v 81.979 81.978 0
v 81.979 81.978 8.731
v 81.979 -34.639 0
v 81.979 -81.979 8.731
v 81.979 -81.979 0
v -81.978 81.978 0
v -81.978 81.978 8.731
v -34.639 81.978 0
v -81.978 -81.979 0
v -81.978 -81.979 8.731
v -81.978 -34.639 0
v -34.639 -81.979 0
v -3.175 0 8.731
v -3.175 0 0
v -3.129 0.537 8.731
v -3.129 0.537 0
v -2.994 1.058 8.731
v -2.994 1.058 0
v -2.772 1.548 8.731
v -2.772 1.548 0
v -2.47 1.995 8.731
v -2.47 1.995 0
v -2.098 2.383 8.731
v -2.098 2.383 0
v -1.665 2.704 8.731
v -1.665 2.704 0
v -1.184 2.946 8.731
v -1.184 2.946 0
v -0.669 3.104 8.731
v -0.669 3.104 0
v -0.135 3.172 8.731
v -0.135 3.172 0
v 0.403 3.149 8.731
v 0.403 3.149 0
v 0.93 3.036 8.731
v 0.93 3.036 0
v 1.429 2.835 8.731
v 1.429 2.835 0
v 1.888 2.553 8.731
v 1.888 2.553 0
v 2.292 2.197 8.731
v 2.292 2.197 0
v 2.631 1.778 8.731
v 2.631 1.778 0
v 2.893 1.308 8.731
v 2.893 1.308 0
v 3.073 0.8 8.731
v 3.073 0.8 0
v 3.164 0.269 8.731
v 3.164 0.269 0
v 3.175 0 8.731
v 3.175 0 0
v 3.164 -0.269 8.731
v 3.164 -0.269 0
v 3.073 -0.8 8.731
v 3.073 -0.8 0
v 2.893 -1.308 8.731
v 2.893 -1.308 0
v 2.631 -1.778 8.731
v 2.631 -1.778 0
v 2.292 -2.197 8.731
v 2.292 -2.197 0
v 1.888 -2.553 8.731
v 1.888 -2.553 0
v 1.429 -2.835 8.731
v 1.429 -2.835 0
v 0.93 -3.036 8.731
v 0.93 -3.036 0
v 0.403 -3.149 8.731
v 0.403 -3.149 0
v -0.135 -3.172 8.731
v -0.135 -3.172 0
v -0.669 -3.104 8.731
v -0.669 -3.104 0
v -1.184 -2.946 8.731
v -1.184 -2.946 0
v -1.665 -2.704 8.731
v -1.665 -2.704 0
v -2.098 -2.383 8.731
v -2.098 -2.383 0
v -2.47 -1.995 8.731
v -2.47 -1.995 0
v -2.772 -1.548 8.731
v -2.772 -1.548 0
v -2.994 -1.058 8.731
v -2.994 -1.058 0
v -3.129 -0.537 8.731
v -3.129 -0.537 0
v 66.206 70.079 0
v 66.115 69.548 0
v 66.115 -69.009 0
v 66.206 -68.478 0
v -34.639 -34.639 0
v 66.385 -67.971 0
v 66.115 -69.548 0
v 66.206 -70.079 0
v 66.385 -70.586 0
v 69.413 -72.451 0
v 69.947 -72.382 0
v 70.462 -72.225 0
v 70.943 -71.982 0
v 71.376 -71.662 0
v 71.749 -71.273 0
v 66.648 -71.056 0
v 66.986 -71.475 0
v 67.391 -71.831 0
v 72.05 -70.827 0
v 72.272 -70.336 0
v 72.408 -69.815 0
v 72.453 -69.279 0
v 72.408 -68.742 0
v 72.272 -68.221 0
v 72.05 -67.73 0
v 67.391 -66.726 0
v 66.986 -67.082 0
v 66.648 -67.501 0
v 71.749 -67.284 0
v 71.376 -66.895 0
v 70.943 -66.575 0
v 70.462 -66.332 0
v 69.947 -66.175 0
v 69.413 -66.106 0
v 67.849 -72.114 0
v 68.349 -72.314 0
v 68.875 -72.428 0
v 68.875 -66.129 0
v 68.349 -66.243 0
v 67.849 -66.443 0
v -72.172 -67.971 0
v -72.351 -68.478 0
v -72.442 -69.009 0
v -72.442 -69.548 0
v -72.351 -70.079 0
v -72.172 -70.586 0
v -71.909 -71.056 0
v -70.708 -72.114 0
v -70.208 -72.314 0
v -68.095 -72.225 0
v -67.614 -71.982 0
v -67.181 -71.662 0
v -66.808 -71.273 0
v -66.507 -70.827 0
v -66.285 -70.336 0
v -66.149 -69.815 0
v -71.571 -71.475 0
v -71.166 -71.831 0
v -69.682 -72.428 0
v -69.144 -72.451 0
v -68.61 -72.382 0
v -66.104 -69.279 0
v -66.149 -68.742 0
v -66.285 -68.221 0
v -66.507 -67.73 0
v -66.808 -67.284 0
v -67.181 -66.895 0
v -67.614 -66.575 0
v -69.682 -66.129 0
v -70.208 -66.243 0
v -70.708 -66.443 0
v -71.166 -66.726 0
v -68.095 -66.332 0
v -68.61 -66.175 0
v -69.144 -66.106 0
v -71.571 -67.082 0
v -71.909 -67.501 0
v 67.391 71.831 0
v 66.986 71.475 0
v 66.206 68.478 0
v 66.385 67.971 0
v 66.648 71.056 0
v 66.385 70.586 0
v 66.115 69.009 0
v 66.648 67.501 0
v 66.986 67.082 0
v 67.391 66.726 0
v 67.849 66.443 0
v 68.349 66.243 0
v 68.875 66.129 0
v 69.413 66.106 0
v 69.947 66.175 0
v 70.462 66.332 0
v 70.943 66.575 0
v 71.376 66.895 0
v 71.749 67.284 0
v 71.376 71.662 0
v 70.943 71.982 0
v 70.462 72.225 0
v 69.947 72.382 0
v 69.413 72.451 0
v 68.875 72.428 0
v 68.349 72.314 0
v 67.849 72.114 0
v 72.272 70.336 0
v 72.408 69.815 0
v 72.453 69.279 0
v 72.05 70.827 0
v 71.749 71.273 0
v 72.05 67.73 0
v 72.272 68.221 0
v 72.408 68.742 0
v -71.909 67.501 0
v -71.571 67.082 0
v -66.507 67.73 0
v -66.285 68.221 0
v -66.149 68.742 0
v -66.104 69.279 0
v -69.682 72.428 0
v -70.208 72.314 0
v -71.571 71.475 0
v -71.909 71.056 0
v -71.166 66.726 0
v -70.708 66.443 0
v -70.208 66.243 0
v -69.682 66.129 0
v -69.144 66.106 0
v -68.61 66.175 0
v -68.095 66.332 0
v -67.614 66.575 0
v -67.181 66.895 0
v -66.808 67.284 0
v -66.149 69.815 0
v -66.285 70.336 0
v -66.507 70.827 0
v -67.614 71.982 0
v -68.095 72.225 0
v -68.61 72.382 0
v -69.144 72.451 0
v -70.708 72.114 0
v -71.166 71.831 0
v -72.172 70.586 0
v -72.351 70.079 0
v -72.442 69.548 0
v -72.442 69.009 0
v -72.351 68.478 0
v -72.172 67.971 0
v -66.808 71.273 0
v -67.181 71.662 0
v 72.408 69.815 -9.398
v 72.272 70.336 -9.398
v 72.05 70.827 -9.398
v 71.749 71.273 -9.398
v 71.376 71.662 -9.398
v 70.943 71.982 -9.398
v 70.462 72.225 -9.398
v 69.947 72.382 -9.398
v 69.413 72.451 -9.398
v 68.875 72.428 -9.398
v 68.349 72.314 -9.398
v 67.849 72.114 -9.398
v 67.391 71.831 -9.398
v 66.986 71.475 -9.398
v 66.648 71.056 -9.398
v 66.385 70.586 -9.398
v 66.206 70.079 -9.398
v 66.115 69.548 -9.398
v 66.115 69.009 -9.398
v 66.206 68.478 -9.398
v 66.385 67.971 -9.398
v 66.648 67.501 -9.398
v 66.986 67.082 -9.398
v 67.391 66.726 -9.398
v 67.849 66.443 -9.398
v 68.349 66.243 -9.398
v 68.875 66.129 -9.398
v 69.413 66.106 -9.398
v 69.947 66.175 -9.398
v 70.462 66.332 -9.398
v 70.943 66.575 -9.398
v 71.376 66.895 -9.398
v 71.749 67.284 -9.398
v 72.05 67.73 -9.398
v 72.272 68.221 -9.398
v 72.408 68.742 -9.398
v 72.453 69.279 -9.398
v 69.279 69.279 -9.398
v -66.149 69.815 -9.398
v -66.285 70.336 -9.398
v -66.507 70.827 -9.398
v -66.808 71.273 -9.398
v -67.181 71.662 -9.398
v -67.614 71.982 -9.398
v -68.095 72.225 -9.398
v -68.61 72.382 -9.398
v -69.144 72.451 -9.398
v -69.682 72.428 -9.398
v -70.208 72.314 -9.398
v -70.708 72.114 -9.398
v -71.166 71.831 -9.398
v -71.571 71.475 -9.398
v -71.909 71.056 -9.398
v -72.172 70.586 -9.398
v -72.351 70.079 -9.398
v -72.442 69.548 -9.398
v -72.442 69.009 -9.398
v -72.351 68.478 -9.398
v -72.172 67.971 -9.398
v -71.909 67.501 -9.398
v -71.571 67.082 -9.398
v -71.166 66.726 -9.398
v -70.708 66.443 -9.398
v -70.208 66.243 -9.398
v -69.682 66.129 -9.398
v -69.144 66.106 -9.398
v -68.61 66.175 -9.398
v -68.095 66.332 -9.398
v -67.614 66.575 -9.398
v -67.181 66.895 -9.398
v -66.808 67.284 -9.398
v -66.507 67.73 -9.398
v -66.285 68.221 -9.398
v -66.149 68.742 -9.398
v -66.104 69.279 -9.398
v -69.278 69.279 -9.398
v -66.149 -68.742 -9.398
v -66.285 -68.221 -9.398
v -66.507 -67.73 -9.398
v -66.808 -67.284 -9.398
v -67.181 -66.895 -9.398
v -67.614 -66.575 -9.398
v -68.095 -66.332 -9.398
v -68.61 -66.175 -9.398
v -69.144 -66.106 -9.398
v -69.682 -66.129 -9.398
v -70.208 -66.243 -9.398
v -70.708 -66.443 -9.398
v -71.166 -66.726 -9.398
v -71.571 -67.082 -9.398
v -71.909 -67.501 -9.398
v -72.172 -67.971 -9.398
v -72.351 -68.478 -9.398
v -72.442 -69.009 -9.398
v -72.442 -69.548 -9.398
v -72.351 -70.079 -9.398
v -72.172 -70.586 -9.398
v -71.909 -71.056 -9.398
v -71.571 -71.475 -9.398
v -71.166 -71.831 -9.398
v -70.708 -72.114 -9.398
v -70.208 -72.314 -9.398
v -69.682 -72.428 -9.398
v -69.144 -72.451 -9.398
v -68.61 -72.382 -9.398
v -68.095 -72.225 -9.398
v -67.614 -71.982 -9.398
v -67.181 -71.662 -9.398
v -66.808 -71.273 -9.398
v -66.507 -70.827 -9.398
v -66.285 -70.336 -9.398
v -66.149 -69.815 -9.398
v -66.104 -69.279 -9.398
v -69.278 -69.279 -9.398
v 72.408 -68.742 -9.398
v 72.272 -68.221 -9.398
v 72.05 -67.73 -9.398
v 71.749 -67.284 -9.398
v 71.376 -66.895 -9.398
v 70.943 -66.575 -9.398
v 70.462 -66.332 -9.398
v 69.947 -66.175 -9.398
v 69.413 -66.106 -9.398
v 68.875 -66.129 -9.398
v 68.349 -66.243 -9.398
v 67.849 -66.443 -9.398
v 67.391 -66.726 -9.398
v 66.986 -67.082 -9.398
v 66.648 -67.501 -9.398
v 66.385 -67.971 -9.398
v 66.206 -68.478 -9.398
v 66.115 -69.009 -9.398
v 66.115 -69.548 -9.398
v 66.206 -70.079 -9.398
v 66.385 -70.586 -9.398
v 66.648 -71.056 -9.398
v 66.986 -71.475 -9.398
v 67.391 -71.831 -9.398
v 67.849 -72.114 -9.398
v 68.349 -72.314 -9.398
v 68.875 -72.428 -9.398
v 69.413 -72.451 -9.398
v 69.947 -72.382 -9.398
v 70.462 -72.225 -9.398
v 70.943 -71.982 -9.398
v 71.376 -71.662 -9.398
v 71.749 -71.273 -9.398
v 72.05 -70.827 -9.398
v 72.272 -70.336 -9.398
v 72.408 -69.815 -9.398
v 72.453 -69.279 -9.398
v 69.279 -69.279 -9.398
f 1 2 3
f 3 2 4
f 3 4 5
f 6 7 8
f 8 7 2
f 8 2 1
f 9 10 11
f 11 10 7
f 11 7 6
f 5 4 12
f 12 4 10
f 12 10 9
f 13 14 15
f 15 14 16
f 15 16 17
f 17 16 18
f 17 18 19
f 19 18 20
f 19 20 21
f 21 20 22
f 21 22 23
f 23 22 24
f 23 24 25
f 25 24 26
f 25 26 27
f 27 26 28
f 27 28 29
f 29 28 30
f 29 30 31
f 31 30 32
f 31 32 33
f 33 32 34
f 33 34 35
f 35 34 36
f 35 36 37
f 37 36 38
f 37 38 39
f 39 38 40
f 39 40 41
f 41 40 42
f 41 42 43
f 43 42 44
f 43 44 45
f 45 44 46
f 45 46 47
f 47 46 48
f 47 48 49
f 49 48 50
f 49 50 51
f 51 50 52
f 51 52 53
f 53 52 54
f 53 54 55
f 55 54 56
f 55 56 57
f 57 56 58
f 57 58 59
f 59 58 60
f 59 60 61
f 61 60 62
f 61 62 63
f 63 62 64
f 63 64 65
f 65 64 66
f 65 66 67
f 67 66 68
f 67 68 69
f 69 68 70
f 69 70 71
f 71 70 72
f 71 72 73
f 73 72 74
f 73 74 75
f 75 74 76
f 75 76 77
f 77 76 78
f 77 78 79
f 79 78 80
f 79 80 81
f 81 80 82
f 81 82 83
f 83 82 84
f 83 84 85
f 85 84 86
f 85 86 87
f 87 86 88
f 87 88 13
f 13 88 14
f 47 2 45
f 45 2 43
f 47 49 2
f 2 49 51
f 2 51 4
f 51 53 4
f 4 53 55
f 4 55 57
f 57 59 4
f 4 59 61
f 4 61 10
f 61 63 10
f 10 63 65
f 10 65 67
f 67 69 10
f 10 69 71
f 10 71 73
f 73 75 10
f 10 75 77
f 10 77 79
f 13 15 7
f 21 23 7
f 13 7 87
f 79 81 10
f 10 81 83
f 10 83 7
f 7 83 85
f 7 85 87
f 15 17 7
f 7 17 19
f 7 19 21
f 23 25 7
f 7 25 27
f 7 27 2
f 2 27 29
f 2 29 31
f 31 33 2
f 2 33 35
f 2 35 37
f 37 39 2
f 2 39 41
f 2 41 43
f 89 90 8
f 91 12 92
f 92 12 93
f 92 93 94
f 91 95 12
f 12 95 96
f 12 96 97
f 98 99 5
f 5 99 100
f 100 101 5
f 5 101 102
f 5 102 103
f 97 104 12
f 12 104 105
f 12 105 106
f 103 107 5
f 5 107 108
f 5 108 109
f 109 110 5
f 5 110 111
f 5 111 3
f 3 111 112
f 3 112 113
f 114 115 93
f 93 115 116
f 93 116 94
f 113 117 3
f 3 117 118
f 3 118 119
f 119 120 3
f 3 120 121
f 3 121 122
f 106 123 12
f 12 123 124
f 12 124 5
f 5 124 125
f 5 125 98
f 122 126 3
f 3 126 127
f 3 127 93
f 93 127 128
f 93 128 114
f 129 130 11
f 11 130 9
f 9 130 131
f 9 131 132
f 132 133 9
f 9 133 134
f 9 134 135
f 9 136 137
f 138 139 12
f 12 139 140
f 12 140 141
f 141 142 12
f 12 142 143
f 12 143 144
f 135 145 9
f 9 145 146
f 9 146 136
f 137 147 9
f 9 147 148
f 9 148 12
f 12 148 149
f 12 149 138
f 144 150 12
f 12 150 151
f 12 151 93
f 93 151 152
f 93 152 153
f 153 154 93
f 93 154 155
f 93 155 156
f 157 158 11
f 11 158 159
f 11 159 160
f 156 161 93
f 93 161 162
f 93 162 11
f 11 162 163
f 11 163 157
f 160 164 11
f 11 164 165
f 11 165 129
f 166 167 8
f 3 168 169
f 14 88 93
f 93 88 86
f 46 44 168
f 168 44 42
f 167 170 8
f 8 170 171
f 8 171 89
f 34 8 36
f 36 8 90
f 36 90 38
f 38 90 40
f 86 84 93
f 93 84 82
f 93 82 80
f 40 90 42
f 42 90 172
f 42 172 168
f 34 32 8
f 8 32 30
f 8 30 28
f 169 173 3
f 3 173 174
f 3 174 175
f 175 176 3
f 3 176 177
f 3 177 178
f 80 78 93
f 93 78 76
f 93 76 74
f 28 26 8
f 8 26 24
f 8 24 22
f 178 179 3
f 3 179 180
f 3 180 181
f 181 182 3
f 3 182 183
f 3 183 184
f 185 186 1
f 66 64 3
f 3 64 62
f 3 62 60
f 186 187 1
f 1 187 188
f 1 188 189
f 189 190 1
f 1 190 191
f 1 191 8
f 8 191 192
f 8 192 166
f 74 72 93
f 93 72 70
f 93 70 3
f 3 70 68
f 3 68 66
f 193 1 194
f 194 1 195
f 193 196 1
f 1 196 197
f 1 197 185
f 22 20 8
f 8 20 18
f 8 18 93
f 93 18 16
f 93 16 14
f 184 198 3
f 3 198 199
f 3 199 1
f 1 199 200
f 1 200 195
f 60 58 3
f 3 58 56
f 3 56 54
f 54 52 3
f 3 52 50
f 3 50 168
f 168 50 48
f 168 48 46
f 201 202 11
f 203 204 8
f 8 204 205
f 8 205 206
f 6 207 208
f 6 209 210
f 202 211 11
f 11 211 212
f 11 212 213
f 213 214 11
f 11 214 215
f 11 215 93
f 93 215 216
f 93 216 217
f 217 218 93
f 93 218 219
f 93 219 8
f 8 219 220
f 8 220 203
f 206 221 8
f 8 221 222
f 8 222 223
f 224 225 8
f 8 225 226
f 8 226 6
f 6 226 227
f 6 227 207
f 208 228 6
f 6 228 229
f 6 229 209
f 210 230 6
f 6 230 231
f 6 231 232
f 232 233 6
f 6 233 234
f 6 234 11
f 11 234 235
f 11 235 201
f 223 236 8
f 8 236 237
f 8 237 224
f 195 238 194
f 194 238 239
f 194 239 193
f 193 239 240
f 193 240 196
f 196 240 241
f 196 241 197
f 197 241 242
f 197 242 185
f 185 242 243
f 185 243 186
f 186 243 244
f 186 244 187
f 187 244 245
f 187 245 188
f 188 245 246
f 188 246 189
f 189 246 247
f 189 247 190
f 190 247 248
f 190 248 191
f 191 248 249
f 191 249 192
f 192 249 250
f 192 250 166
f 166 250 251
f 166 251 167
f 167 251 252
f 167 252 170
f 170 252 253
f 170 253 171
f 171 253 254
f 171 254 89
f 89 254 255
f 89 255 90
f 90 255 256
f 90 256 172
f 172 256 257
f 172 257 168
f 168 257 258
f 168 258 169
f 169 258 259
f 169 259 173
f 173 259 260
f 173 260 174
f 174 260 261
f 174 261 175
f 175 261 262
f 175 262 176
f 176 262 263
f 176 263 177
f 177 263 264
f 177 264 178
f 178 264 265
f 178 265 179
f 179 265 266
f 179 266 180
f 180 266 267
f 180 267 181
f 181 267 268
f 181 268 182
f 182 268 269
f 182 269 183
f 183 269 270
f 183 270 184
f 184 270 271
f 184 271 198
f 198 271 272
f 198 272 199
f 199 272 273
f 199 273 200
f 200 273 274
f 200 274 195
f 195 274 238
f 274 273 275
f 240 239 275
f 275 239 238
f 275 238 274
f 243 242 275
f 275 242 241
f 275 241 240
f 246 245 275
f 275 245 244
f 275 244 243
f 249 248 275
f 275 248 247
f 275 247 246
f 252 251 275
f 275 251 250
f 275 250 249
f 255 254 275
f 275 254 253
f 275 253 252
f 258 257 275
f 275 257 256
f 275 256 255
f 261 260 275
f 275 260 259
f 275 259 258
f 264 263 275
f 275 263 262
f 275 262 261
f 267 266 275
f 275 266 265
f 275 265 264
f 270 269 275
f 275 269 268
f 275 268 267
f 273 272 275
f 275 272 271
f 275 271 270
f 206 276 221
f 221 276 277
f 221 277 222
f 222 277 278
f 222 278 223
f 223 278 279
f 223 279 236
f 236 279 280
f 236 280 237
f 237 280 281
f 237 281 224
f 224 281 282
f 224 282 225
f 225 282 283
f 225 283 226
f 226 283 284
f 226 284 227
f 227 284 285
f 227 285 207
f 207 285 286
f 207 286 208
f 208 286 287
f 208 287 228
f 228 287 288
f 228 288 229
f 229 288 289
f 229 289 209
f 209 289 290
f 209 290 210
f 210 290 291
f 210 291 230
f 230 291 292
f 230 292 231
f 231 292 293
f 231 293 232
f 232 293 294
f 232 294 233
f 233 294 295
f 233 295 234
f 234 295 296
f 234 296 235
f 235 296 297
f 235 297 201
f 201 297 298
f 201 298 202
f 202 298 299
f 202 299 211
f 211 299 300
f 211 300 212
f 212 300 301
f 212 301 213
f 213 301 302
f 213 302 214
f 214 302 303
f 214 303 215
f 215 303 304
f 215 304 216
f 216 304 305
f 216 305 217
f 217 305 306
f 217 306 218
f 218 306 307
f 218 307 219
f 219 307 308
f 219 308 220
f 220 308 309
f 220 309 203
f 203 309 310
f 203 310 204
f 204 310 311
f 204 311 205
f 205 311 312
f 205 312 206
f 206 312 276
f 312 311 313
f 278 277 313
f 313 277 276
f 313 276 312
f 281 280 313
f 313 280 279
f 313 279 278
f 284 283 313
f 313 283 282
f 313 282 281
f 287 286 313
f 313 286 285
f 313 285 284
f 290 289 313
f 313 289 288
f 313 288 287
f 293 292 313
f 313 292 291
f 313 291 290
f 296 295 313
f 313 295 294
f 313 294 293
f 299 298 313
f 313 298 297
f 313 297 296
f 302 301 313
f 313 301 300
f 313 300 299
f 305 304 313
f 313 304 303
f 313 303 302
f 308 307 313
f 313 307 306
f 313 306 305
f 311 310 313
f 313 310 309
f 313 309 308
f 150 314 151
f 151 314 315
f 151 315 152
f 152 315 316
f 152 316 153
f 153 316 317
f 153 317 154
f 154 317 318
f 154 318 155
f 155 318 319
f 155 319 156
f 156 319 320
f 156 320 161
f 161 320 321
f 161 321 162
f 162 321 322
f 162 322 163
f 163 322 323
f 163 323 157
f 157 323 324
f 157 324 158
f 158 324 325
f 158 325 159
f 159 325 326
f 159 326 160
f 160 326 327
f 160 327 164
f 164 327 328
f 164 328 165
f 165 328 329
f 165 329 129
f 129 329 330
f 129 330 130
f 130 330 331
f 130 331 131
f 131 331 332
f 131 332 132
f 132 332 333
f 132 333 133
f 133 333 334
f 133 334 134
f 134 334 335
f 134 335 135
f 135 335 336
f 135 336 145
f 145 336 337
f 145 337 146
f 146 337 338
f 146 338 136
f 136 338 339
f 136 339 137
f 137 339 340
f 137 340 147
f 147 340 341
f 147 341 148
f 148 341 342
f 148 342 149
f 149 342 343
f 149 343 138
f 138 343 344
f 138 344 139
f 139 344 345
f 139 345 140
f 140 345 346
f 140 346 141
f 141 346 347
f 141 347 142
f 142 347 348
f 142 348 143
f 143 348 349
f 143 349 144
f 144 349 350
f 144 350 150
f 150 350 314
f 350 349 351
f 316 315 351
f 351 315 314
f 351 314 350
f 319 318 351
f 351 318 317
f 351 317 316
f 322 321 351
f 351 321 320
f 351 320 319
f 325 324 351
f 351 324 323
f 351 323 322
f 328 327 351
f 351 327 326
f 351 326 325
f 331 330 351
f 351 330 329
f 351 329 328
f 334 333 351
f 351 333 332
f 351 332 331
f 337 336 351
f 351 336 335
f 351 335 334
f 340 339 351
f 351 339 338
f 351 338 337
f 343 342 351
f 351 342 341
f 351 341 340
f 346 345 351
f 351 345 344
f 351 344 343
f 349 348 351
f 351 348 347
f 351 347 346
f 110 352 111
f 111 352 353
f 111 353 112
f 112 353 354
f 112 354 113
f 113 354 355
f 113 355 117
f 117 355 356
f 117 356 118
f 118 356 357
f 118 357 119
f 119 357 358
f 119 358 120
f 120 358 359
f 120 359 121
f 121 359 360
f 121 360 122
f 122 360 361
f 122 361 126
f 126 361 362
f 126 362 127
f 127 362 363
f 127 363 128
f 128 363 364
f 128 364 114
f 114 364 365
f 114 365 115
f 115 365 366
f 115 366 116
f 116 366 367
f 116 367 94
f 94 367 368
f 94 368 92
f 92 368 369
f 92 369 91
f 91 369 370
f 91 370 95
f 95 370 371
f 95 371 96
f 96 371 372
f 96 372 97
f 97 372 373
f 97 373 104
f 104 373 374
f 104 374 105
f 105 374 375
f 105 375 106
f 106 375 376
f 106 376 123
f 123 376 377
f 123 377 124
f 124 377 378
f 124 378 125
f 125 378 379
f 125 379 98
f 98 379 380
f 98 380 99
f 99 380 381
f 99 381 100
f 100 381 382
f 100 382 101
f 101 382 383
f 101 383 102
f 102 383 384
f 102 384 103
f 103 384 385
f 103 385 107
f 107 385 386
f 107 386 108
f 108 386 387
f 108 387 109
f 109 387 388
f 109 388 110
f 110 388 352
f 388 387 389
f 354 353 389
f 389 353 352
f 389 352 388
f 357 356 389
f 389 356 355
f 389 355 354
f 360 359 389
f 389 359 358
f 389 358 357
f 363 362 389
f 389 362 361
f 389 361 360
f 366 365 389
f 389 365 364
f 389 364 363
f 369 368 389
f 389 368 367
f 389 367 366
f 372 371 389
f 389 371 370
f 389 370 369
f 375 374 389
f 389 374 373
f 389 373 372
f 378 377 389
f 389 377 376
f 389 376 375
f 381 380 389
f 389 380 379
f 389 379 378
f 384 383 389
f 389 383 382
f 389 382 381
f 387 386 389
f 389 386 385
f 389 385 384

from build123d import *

# Parameters (mm, degrees)
SKETCH1_W           = 163.957
SKETCH1_H           = 163.957
SKETCH1_R           = 3.175
BOSS_EXTRUDE1_DEPTH = 8.73125
SKETCH1_5_R         = 3.175
BOSS_EXTRUDE4_DEPTH = 9.398


with BuildPart() as part:
    # Sketch1 → Boss-Extrude1 (new body)
    with BuildSketch(Plane.XY):
        Rectangle(SKETCH1_W, SKETCH1_H)
        Circle(SKETCH1_R, mode=Mode.SUBTRACT)
    extrude(amount=BOSS_EXTRUDE1_DEPTH)

    # Sketch1<5> → Boss-Extrude4 (add)
    with BuildSketch(Plane.XY):
        with Locations((-69.2785, 69.2785)):
            Circle(SKETCH1_5_R)
        with Locations((69.2785, 69.2785)):
            Circle(SKETCH1_5_R)
        with Locations((69.2785, -69.2785)):
            Circle(SKETCH1_5_R)
        with Locations((-69.2785, -69.2785)):
            Circle(SKETCH1_5_R)
    extrude(amount=-BOSS_EXTRUDE4_DEPTH)


solid = part.part
